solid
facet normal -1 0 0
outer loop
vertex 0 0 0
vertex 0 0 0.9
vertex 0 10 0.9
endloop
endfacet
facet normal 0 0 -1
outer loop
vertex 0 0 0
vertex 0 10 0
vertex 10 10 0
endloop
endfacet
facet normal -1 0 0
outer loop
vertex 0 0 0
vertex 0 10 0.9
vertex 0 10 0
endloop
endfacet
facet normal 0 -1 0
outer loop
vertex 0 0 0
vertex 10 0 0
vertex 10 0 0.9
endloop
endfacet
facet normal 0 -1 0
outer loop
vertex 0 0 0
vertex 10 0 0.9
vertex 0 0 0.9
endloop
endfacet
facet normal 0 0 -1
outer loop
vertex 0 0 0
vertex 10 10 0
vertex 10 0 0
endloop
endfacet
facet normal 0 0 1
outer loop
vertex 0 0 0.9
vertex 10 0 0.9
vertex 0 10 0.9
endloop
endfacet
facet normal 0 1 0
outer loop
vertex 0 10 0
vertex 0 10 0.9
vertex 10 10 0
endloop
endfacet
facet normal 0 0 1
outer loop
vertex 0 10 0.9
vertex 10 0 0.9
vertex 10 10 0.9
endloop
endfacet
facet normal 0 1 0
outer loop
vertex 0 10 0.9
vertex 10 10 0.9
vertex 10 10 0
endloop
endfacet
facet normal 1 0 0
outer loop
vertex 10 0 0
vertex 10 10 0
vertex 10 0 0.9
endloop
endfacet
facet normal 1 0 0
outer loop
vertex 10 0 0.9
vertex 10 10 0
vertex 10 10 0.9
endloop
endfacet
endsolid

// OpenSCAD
/* Warning, this is a very basic generator with a lot of approximation 
input data : [VQFN, 2UW, 10x10x0.9mm, 72, , B, C04-00554B]
generated by com.zoubworld.electronics.cad.model3d.Basic
Date : Sun Feb 15 10:50:49 CET 2026
*/

//body
color("black")
translate([0,0,0])
cube([10.0,10.0,0.9], center=false);
